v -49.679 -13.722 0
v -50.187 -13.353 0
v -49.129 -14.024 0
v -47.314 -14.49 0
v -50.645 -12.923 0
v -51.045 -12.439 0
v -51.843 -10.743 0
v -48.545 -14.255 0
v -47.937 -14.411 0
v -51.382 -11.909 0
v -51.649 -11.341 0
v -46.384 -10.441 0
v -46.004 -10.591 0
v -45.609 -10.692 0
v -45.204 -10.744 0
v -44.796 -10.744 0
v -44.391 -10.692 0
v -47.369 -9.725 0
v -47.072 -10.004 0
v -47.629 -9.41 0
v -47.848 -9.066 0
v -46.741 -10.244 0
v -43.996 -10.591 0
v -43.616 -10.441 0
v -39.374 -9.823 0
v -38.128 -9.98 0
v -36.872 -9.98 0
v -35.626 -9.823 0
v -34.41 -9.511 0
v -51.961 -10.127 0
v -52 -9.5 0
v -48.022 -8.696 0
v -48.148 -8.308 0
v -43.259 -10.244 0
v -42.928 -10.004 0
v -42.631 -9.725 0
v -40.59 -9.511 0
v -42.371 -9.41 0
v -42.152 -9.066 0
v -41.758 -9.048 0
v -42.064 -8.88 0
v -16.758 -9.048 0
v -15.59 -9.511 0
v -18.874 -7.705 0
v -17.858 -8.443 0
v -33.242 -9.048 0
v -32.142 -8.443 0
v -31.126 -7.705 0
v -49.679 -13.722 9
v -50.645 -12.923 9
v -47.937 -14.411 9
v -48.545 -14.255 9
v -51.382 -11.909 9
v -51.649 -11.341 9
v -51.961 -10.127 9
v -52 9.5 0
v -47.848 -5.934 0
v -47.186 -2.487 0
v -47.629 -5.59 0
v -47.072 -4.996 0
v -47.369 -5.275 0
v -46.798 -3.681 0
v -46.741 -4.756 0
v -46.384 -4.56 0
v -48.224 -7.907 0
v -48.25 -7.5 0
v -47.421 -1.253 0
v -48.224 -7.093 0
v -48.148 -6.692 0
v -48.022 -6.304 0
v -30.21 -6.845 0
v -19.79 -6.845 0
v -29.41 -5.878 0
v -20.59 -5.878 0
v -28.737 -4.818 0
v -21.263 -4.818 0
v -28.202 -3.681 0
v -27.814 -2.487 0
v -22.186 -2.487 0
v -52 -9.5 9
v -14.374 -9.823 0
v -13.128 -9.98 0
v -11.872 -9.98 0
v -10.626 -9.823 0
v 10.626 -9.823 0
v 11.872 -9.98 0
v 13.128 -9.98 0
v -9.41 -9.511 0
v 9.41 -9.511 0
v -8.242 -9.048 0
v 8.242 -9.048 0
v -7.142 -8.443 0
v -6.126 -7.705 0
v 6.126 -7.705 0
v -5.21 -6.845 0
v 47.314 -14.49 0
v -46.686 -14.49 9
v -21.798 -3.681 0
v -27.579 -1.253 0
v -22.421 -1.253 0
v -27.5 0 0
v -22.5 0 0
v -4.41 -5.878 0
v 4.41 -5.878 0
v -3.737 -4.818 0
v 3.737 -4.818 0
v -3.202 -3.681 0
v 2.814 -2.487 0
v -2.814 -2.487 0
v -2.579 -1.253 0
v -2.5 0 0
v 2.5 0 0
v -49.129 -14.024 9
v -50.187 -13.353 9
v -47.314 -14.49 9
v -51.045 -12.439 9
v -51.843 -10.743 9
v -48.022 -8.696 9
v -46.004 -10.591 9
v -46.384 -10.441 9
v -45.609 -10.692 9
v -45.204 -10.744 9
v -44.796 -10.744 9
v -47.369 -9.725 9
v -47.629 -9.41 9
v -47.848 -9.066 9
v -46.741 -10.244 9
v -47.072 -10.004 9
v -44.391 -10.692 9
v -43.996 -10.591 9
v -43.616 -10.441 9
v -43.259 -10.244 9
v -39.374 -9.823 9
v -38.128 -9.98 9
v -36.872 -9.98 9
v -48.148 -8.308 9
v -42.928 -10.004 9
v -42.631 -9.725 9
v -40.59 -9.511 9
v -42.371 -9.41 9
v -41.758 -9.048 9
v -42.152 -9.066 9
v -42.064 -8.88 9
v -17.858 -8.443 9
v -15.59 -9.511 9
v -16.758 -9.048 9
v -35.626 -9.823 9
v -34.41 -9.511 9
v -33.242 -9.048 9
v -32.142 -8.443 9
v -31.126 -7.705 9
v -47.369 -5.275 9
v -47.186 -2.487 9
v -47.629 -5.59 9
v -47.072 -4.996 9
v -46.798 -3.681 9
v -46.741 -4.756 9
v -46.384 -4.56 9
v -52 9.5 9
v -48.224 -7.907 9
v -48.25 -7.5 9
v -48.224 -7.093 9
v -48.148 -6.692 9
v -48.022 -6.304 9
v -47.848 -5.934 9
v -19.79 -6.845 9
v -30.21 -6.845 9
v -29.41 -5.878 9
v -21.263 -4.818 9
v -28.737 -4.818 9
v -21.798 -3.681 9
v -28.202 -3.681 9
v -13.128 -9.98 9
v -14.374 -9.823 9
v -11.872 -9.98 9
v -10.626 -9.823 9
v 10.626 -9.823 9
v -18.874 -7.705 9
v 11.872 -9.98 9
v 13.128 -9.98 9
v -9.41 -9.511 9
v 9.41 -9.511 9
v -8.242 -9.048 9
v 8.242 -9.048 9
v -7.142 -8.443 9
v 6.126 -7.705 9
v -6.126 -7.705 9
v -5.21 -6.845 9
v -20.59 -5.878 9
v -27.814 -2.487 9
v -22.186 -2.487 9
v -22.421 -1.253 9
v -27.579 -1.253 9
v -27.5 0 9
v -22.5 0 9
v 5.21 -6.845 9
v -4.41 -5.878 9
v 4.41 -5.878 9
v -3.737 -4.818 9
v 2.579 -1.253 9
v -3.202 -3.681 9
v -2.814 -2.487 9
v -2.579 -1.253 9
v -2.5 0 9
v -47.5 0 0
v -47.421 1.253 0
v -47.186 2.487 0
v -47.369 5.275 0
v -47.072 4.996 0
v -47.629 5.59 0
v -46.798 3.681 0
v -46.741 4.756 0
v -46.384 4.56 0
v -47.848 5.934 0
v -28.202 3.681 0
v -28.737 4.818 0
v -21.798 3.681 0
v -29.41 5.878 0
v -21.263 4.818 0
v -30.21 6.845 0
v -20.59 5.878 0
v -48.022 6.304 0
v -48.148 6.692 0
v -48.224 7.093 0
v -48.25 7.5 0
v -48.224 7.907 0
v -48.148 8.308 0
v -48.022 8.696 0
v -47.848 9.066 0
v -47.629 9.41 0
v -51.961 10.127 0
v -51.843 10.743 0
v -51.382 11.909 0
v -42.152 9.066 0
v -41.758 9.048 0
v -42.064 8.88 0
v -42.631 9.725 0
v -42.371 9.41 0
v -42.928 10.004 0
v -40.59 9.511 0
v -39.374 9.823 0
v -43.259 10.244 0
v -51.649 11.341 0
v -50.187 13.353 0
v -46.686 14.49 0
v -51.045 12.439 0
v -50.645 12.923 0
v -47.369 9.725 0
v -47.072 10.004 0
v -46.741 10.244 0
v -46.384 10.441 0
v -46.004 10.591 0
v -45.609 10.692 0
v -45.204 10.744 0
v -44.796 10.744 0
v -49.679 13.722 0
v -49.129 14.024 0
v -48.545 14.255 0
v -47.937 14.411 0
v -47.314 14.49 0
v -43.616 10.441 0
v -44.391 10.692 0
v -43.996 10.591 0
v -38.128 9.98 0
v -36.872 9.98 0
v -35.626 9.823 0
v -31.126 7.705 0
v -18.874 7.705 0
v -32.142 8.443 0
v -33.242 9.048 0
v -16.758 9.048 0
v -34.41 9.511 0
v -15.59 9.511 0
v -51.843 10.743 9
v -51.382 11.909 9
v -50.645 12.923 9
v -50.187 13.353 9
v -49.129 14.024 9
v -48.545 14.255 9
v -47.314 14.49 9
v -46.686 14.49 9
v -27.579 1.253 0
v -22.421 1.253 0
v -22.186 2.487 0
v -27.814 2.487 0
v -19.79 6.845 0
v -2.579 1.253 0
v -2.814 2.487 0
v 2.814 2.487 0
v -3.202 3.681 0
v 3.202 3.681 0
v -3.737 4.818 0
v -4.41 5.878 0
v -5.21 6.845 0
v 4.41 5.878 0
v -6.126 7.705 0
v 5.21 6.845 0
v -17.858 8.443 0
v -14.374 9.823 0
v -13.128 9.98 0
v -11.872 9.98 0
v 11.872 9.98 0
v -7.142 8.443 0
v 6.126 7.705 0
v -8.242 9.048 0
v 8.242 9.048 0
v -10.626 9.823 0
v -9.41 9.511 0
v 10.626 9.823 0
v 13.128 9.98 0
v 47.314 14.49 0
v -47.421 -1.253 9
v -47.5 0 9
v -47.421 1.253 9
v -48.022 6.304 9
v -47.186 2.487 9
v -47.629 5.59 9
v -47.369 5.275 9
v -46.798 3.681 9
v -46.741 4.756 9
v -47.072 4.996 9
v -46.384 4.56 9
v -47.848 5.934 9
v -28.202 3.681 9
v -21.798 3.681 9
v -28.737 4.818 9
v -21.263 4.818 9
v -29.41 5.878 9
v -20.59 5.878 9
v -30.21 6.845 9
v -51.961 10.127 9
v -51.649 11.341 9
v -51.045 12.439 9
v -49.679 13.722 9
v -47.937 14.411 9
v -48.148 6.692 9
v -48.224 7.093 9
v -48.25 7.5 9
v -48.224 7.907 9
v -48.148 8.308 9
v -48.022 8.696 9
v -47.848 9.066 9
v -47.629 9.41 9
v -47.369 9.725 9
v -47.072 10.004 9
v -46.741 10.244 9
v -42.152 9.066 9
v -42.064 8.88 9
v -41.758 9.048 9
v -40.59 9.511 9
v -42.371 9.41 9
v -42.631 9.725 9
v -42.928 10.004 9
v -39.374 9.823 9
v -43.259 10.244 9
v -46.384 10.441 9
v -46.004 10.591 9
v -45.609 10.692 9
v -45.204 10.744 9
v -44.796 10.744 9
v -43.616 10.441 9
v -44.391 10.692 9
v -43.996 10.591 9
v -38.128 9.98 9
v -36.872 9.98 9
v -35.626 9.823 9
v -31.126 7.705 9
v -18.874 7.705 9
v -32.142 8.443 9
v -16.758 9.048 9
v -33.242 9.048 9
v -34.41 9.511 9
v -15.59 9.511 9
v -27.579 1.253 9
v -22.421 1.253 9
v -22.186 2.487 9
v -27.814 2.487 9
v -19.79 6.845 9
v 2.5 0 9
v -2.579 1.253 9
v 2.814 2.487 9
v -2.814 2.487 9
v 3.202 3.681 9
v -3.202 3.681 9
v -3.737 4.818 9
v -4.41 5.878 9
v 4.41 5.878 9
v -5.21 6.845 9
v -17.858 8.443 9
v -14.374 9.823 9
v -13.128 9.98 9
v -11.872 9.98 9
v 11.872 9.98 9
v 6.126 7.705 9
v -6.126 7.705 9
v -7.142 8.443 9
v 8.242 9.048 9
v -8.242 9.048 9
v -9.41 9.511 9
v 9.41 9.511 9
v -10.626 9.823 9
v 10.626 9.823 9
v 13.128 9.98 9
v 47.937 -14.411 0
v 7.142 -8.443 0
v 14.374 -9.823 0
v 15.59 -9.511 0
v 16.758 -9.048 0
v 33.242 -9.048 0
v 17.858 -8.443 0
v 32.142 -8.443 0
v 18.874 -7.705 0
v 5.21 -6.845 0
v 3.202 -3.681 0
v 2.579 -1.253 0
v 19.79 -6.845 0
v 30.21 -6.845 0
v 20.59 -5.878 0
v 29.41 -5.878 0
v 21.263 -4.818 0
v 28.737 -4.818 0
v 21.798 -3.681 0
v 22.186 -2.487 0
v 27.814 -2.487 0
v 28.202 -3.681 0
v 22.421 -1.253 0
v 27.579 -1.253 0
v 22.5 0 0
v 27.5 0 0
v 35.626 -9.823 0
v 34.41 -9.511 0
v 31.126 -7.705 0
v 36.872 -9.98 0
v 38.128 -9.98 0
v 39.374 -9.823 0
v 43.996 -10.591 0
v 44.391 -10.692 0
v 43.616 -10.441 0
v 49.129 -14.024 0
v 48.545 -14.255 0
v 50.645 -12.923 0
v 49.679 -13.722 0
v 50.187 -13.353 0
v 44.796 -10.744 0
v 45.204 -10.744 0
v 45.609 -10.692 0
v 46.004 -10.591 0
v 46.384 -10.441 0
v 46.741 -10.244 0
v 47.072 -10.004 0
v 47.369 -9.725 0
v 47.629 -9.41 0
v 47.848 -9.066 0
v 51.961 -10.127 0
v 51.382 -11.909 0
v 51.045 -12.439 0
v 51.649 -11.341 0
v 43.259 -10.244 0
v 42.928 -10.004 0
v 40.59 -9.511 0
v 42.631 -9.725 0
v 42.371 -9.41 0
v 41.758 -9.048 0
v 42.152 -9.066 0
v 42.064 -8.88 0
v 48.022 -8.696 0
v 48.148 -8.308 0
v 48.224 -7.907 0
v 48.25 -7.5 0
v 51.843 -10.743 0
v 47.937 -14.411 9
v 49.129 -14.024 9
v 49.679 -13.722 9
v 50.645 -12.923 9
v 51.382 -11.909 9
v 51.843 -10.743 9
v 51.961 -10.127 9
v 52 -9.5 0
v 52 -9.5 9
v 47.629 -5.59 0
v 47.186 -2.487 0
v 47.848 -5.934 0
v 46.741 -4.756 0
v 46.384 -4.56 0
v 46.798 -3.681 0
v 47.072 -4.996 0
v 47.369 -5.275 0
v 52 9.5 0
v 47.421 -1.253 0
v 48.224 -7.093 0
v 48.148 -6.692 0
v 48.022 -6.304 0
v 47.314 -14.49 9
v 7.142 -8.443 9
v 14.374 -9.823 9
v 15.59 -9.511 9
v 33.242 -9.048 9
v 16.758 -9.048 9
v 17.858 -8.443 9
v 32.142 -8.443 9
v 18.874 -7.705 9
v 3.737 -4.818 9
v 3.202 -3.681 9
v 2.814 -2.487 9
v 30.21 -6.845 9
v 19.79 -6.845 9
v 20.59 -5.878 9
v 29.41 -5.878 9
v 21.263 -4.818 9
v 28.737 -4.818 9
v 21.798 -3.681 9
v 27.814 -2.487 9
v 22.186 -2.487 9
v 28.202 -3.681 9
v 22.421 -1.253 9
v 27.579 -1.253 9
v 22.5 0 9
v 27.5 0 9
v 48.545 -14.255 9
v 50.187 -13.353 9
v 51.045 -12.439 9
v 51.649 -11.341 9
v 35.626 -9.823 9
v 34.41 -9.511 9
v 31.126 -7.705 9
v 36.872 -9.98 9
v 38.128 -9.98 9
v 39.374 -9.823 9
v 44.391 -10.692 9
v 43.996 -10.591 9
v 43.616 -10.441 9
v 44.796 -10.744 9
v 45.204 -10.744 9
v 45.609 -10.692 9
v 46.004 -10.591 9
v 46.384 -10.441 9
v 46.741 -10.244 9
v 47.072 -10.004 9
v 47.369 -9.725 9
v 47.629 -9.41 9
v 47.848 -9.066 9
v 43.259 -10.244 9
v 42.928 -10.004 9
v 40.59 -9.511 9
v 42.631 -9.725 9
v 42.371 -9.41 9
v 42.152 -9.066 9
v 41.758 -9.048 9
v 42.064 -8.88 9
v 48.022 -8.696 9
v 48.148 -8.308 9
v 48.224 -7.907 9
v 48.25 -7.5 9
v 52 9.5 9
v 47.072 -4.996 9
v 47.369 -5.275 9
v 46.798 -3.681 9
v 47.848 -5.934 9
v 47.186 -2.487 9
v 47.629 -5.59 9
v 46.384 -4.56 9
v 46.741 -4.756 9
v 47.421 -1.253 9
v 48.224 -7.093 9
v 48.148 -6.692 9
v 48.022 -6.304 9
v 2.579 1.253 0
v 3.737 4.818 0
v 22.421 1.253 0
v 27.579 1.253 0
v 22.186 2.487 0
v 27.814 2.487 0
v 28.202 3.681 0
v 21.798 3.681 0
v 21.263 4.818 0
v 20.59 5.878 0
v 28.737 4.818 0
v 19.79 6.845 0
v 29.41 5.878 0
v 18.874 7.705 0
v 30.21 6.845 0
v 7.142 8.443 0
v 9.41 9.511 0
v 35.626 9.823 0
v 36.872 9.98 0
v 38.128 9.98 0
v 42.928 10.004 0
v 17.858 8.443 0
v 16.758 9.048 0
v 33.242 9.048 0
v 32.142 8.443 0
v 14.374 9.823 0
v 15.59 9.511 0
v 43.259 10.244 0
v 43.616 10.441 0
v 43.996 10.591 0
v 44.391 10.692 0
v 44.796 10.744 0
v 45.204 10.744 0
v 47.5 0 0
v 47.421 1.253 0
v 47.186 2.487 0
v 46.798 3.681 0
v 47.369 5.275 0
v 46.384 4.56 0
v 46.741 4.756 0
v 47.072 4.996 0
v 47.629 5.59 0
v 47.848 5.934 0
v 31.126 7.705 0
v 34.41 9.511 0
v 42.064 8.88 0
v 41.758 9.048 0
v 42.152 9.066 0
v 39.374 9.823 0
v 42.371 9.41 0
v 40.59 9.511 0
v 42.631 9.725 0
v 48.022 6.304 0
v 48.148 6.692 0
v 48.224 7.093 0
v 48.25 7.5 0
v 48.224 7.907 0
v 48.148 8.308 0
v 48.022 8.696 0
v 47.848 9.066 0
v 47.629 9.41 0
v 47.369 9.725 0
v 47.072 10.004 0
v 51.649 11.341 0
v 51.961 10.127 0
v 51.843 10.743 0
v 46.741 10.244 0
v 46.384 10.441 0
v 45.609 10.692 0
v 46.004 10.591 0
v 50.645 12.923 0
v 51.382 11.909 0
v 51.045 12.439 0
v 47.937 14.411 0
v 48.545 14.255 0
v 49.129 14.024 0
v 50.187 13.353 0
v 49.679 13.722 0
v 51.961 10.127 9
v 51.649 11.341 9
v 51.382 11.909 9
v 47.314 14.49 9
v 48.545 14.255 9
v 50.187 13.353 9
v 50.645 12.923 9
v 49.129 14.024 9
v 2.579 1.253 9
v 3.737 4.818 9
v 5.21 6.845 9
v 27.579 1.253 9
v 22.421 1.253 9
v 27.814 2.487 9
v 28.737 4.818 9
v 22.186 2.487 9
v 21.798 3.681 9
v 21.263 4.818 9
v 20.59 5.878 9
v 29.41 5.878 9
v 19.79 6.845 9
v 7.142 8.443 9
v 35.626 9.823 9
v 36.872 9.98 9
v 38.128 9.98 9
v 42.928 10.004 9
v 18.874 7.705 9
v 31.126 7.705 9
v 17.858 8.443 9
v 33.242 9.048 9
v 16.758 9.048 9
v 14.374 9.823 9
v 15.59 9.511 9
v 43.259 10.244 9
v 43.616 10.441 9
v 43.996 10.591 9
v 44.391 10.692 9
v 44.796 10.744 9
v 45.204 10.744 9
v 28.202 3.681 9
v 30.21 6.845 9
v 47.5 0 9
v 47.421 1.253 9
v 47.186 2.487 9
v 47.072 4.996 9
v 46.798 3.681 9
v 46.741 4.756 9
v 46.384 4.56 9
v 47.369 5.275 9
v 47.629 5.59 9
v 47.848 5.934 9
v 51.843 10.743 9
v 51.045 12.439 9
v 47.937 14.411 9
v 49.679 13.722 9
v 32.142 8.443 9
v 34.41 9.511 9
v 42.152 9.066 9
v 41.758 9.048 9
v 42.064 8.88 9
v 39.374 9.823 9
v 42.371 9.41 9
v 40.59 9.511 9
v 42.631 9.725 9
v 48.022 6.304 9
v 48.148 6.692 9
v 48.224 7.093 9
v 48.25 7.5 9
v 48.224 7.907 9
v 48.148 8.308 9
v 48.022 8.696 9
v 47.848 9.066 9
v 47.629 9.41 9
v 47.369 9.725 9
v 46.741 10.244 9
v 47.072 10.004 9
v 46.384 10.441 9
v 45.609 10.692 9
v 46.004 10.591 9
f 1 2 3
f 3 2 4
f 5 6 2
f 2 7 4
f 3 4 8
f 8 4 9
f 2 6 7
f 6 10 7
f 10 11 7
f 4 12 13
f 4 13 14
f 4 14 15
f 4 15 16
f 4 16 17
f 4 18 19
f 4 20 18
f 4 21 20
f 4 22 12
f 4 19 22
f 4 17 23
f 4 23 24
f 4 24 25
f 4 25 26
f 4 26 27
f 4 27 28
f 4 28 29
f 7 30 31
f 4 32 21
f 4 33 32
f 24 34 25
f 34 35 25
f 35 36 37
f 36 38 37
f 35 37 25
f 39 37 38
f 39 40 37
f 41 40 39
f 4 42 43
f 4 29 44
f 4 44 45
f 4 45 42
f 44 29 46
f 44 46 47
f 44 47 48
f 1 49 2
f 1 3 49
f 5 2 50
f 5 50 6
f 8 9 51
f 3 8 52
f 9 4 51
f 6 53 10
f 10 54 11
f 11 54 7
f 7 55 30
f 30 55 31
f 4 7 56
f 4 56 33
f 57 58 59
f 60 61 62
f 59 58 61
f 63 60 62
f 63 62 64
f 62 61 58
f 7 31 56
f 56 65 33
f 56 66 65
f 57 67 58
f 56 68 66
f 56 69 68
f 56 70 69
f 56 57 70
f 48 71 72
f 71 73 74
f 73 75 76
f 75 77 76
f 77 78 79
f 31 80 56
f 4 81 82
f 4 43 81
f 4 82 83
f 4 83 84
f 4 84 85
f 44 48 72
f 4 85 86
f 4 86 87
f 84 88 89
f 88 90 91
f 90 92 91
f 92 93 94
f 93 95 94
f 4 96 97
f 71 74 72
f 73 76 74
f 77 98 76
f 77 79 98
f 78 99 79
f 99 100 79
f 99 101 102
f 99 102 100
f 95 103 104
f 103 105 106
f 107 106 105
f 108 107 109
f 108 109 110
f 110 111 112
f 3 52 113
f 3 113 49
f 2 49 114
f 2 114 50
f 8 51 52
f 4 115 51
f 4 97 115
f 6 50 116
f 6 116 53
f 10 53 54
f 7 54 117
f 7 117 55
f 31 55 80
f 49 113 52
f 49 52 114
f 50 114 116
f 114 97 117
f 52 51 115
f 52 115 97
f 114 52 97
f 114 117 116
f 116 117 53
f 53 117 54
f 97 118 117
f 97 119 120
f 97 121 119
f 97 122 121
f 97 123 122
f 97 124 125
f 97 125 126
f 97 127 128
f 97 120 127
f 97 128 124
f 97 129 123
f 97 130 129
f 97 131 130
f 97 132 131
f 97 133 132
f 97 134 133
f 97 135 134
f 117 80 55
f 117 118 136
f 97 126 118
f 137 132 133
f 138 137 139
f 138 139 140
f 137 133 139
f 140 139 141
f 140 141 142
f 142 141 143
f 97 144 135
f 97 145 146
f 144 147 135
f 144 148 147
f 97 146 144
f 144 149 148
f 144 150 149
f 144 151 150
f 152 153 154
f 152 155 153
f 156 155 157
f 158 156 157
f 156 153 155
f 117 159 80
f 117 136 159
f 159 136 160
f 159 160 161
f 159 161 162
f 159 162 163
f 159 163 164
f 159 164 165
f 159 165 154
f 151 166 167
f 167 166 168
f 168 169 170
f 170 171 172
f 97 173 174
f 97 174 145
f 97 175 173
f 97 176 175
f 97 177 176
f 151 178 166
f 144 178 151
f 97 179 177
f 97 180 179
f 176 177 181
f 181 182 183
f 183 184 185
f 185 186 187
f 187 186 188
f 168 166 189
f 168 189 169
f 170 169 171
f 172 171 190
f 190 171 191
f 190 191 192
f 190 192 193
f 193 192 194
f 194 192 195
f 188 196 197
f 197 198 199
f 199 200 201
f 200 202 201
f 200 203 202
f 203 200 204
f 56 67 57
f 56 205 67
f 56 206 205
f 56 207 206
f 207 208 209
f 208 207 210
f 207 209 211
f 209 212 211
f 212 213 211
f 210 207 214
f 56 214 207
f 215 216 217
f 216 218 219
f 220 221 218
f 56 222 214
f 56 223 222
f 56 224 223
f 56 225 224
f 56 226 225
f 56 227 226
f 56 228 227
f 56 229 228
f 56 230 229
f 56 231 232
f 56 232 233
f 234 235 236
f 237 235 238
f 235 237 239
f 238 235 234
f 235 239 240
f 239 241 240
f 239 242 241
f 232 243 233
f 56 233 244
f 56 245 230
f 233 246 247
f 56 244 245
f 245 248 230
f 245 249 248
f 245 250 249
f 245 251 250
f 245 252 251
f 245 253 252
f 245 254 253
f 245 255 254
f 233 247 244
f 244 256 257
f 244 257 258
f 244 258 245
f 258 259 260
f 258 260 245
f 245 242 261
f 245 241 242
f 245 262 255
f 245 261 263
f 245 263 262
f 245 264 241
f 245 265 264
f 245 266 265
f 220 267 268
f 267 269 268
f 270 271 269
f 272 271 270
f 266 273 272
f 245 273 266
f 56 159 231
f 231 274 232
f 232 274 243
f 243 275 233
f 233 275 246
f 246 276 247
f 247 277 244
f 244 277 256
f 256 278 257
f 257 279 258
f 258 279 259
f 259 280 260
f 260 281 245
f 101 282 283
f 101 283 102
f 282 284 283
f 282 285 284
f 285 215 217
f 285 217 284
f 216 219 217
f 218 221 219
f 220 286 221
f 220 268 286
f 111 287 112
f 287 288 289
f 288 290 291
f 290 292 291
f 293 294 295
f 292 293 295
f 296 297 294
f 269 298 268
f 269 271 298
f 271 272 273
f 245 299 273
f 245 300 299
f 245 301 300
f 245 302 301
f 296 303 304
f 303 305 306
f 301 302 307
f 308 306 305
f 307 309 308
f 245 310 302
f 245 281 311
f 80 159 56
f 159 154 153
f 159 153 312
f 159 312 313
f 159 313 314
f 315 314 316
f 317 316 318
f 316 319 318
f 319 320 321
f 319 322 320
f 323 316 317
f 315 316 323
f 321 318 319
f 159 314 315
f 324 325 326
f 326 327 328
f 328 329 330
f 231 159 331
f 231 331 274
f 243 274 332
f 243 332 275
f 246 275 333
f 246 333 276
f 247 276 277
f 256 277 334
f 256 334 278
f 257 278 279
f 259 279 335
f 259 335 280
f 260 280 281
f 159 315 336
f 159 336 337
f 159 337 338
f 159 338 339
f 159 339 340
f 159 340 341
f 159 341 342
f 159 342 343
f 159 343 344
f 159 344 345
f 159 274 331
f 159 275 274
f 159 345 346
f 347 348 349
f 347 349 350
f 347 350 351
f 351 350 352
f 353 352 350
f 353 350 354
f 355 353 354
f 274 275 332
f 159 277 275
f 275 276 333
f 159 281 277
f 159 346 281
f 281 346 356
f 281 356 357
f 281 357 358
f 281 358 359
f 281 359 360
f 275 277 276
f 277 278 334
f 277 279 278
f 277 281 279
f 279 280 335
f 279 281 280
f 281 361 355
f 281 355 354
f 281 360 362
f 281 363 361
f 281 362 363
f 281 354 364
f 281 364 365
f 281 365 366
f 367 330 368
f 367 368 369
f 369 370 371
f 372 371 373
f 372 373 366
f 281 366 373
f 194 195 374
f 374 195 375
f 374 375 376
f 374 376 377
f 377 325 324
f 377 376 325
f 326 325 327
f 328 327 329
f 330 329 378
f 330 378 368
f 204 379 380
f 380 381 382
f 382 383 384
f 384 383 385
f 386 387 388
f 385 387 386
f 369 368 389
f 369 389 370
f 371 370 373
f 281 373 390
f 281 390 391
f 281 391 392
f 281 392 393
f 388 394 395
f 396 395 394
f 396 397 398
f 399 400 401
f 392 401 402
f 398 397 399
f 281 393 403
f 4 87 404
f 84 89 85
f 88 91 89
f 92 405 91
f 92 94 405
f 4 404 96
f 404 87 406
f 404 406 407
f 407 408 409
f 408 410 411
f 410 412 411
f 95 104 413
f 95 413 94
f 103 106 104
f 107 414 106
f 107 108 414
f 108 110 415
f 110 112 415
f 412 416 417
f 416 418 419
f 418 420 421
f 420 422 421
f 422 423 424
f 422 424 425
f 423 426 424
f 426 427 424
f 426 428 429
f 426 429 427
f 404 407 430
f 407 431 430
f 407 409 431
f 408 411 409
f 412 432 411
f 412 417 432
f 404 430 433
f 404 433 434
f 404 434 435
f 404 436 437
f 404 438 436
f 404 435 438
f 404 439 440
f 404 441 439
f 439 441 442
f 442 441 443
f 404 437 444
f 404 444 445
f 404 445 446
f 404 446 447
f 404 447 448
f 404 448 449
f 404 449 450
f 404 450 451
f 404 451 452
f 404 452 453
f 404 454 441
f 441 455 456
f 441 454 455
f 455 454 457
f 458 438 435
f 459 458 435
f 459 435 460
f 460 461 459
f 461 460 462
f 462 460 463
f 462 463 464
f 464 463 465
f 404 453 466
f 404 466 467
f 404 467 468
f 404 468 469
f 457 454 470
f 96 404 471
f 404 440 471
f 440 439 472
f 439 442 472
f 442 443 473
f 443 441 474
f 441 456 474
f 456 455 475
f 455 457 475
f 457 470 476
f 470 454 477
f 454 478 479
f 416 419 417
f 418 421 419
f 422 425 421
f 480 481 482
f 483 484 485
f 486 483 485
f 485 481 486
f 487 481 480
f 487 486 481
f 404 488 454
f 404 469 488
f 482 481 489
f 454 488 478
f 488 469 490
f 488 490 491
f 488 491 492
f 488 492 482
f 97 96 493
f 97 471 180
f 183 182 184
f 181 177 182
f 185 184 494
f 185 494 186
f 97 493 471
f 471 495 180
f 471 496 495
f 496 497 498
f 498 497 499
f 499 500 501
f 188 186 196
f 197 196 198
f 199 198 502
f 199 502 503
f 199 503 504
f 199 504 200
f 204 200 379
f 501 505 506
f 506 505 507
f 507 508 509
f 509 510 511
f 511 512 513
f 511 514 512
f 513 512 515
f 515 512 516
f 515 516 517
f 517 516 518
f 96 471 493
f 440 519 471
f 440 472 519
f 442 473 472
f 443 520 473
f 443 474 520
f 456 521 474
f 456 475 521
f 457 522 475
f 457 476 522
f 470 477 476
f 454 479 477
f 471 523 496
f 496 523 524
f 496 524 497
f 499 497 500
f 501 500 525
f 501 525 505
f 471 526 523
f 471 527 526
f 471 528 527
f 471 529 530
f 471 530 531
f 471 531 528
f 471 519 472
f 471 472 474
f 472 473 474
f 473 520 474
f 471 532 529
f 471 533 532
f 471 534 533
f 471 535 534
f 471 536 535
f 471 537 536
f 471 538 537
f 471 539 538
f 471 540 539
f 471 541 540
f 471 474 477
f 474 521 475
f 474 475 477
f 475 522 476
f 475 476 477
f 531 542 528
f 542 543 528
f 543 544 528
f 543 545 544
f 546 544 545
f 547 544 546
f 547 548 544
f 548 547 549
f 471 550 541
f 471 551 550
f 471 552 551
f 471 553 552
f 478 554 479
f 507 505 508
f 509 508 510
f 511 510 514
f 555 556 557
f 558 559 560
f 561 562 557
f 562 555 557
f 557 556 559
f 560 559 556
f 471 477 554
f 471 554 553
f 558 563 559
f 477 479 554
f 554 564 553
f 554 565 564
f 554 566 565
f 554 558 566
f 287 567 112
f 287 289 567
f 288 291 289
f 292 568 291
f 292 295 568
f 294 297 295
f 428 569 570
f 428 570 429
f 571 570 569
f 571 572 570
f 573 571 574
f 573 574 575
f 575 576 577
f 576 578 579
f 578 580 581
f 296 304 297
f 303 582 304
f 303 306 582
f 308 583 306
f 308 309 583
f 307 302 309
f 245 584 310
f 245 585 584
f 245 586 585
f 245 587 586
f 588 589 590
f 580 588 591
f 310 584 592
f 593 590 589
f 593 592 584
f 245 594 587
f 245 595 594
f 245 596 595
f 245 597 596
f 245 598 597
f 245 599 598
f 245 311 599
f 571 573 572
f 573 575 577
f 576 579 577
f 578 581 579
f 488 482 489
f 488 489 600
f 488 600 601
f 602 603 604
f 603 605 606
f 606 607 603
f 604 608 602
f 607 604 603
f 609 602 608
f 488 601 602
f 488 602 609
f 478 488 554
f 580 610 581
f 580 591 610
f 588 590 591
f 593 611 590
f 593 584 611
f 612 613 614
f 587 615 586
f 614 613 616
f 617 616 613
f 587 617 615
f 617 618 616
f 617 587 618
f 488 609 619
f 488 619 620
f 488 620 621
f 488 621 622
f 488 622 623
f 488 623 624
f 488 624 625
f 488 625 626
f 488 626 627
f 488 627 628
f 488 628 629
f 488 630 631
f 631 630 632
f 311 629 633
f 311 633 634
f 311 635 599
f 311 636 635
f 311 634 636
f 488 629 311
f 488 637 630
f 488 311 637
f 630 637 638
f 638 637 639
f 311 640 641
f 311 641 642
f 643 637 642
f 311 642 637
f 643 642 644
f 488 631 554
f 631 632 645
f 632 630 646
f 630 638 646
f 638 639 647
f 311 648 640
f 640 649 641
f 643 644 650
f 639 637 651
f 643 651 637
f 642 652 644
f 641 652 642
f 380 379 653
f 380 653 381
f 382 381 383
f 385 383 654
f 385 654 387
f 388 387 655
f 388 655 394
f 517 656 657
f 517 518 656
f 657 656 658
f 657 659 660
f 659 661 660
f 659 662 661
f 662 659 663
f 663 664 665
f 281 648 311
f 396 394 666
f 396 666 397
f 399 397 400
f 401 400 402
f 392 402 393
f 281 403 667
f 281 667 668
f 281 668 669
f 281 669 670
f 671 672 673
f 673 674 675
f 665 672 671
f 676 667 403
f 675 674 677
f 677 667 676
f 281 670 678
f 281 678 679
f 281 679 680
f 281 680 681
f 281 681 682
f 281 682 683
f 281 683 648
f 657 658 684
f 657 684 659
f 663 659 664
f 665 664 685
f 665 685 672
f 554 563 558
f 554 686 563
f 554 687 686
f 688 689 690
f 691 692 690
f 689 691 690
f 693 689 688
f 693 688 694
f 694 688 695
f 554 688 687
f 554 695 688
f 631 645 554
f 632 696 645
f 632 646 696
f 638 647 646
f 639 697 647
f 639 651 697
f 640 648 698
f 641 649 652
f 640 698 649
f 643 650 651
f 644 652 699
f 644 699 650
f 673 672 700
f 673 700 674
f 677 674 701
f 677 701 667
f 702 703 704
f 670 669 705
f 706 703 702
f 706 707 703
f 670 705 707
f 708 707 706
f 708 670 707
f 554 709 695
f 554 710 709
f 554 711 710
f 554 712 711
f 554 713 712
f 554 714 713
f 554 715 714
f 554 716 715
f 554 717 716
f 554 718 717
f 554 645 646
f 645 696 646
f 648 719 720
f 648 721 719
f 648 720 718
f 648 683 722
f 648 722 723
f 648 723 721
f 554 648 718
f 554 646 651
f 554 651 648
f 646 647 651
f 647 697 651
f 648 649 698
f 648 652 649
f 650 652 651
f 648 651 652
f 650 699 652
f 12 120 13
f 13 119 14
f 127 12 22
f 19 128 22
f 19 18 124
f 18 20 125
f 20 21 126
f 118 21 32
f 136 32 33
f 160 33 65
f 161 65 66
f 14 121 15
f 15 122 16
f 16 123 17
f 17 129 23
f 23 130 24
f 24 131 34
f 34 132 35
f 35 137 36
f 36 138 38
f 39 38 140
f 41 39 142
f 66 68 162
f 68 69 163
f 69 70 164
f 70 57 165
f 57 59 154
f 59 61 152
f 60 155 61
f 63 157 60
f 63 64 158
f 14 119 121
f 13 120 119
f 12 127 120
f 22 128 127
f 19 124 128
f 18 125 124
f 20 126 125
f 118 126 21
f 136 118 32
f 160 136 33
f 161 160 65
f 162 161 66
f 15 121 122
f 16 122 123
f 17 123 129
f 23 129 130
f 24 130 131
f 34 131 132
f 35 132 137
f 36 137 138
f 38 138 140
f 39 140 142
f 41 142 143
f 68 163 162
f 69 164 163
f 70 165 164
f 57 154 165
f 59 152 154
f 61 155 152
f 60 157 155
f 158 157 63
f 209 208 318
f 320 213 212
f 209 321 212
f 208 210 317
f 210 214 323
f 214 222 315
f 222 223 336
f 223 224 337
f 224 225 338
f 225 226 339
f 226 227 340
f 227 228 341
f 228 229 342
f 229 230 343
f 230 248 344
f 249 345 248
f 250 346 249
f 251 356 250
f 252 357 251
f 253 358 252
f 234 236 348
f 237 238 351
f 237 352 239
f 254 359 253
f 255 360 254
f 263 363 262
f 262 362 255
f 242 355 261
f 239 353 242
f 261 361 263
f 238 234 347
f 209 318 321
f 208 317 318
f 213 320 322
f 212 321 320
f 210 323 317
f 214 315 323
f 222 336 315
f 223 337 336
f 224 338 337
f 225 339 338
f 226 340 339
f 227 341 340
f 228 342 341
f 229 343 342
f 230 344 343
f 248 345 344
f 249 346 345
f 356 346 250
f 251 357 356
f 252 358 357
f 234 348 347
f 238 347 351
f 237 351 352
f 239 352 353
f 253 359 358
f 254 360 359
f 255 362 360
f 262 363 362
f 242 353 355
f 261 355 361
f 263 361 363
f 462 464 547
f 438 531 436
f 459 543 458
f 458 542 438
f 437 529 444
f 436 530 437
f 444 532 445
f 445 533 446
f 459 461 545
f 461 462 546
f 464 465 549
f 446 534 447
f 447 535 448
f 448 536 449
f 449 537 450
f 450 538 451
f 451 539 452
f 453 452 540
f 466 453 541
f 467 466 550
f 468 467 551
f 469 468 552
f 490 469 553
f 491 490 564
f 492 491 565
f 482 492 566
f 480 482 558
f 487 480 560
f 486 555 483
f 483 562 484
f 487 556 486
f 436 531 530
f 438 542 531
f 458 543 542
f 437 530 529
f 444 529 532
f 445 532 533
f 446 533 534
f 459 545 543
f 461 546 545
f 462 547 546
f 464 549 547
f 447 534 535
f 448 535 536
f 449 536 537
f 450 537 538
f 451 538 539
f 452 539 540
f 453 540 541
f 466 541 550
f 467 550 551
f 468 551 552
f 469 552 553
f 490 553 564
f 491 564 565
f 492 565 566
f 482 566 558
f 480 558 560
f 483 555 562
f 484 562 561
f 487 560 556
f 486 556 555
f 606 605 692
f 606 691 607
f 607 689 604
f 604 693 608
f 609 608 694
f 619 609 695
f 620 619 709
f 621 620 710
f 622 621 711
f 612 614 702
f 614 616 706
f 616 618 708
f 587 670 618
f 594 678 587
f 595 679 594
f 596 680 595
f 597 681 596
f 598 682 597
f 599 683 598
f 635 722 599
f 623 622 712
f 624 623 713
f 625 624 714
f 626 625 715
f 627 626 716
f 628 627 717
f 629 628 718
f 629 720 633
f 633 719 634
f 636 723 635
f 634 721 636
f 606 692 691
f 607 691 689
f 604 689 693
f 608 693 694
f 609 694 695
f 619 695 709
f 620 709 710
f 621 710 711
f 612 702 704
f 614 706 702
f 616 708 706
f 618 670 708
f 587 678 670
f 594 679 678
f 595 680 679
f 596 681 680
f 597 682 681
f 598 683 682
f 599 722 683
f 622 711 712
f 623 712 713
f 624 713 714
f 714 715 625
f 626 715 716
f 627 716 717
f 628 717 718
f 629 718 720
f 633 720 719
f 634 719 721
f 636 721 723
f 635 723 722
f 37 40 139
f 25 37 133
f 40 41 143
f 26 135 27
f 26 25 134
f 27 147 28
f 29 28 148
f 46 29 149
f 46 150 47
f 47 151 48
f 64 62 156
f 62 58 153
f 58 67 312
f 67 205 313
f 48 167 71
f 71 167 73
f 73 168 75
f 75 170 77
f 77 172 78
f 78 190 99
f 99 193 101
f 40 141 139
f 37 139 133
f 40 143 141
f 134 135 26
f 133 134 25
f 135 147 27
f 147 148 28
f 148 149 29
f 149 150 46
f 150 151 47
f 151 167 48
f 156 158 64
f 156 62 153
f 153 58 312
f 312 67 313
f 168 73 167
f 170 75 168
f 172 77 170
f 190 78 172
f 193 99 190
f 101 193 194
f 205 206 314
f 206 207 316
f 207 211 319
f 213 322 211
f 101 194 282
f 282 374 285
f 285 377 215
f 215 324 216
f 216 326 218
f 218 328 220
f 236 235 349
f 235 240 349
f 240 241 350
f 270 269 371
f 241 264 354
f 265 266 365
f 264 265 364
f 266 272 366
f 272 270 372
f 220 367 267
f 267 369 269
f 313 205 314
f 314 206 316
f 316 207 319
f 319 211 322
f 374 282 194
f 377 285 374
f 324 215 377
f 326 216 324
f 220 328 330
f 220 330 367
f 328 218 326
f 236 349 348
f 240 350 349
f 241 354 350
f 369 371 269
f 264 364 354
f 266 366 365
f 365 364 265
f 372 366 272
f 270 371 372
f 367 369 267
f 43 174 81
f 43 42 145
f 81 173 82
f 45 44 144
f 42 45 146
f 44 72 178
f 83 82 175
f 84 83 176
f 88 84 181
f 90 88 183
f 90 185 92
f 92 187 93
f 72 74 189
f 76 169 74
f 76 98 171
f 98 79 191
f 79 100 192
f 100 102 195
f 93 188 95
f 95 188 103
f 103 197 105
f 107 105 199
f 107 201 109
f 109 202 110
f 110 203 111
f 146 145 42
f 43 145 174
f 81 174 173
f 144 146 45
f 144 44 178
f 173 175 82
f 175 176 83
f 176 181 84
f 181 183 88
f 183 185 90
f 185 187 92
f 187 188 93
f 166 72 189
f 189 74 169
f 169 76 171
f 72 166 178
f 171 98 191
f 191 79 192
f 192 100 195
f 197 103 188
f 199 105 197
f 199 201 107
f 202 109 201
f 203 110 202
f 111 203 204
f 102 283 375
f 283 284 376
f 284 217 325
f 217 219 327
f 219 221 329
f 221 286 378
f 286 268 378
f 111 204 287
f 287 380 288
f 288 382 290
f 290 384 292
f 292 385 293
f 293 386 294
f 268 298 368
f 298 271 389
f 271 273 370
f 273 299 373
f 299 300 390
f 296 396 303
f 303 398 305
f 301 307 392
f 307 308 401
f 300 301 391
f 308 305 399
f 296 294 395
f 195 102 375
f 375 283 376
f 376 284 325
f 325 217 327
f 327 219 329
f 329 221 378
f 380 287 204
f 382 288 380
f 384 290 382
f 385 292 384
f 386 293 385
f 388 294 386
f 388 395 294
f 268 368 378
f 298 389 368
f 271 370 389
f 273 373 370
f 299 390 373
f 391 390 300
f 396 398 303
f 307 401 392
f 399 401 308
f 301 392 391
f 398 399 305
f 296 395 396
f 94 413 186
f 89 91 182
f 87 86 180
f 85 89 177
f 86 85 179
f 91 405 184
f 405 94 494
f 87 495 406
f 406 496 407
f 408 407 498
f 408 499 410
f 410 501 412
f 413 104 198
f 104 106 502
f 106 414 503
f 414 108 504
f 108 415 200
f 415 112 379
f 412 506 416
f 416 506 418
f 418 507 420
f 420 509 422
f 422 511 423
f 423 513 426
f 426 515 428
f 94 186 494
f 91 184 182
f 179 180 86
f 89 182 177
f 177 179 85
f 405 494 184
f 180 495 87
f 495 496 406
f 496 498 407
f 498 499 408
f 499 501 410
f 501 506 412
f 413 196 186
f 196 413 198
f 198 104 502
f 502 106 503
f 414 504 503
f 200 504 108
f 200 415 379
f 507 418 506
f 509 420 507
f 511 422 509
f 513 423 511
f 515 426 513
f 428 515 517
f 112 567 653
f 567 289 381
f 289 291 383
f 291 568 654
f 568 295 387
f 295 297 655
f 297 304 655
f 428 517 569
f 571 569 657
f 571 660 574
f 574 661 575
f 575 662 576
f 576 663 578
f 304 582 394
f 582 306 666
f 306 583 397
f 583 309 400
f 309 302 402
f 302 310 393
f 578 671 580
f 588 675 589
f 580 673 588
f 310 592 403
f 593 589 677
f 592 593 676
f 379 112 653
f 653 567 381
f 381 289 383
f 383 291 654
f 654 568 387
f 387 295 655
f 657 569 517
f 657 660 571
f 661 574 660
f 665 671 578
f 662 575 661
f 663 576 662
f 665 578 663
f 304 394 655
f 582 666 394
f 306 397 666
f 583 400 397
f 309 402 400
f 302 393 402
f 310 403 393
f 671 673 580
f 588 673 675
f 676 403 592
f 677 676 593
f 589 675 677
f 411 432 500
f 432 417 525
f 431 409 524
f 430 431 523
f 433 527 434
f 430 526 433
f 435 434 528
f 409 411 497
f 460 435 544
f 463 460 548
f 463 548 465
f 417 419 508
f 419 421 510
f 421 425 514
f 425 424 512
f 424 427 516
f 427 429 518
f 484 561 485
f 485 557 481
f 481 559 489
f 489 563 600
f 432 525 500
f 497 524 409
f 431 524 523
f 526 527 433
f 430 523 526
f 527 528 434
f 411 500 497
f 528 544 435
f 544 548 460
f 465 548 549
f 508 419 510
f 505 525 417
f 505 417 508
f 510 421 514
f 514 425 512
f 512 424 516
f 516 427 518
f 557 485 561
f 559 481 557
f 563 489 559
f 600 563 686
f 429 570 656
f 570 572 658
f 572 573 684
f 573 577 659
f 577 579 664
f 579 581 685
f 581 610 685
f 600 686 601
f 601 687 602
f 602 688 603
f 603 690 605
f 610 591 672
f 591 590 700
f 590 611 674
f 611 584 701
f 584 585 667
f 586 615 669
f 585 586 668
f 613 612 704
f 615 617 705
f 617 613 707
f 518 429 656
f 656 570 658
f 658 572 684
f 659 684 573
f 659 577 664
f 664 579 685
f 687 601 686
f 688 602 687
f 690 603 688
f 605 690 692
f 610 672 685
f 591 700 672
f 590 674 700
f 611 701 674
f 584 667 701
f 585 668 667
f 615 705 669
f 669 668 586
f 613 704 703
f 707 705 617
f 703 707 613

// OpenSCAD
$fn = 50;

difference() {
	union() {
		hull() {
			translate(v = [-47.0, 9.5, 0]) {
				cylinder(h = 9, r = 5);
			}
			translate(v = [47.0, 9.5, 0]) {
				cylinder(h = 9, r = 5);
			}
			translate(v = [-47.0, -9.5, 0]) {
				cylinder(h = 9, r = 5);
			}
			translate(v = [47.0, -9.5, 0]) {
				cylinder(h = 9, r = 5);
			}
		}
	}
	union() {
		translate(v = [-45.0, -7.5, -100.0]) {
			cylinder(h = 200, r = 3.25);
		}
		translate(v = [-45.0, 7.5, -100.0]) {
			cylinder(h = 200, r = 3.25);
		}
		translate(v = [45.0, -7.5, -100.0]) {
			cylinder(h = 200, r = 3.25);
		}
		translate(v = [45.0, 7.5, -100.0]) {
			cylinder(h = 200, r = 3.25);
		}
		translate(v = [-45.0, -7.5, -100.0]) {
			cylinder(h = 200, r = 1.8);
		}
		translate(v = [-45.0, 7.5, -100.0]) {
			cylinder(h = 200, r = 1.8);
		}
		translate(v = [45.0, -7.5, -100.0]) {
			cylinder(h = 200, r = 1.8);
		}
		translate(v = [45.0, 7.5, -100.0]) {
			cylinder(h = 200, r = 1.8);
		}
		translate(v = [-37.5, 0, 0.0]) {
			cylinder(h = 9, r = 10.0);
		}
		translate(v = [-12.5, 0, 0.0]) {
			cylinder(h = 9, r = 10.0);
		}
		translate(v = [12.5, 0, 0.0]) {
			cylinder(h = 9, r = 10.0);
		}
		translate(v = [37.5, 0, 0.0]) {
			cylinder(h = 9, r = 10.0);
		}
	}
}
